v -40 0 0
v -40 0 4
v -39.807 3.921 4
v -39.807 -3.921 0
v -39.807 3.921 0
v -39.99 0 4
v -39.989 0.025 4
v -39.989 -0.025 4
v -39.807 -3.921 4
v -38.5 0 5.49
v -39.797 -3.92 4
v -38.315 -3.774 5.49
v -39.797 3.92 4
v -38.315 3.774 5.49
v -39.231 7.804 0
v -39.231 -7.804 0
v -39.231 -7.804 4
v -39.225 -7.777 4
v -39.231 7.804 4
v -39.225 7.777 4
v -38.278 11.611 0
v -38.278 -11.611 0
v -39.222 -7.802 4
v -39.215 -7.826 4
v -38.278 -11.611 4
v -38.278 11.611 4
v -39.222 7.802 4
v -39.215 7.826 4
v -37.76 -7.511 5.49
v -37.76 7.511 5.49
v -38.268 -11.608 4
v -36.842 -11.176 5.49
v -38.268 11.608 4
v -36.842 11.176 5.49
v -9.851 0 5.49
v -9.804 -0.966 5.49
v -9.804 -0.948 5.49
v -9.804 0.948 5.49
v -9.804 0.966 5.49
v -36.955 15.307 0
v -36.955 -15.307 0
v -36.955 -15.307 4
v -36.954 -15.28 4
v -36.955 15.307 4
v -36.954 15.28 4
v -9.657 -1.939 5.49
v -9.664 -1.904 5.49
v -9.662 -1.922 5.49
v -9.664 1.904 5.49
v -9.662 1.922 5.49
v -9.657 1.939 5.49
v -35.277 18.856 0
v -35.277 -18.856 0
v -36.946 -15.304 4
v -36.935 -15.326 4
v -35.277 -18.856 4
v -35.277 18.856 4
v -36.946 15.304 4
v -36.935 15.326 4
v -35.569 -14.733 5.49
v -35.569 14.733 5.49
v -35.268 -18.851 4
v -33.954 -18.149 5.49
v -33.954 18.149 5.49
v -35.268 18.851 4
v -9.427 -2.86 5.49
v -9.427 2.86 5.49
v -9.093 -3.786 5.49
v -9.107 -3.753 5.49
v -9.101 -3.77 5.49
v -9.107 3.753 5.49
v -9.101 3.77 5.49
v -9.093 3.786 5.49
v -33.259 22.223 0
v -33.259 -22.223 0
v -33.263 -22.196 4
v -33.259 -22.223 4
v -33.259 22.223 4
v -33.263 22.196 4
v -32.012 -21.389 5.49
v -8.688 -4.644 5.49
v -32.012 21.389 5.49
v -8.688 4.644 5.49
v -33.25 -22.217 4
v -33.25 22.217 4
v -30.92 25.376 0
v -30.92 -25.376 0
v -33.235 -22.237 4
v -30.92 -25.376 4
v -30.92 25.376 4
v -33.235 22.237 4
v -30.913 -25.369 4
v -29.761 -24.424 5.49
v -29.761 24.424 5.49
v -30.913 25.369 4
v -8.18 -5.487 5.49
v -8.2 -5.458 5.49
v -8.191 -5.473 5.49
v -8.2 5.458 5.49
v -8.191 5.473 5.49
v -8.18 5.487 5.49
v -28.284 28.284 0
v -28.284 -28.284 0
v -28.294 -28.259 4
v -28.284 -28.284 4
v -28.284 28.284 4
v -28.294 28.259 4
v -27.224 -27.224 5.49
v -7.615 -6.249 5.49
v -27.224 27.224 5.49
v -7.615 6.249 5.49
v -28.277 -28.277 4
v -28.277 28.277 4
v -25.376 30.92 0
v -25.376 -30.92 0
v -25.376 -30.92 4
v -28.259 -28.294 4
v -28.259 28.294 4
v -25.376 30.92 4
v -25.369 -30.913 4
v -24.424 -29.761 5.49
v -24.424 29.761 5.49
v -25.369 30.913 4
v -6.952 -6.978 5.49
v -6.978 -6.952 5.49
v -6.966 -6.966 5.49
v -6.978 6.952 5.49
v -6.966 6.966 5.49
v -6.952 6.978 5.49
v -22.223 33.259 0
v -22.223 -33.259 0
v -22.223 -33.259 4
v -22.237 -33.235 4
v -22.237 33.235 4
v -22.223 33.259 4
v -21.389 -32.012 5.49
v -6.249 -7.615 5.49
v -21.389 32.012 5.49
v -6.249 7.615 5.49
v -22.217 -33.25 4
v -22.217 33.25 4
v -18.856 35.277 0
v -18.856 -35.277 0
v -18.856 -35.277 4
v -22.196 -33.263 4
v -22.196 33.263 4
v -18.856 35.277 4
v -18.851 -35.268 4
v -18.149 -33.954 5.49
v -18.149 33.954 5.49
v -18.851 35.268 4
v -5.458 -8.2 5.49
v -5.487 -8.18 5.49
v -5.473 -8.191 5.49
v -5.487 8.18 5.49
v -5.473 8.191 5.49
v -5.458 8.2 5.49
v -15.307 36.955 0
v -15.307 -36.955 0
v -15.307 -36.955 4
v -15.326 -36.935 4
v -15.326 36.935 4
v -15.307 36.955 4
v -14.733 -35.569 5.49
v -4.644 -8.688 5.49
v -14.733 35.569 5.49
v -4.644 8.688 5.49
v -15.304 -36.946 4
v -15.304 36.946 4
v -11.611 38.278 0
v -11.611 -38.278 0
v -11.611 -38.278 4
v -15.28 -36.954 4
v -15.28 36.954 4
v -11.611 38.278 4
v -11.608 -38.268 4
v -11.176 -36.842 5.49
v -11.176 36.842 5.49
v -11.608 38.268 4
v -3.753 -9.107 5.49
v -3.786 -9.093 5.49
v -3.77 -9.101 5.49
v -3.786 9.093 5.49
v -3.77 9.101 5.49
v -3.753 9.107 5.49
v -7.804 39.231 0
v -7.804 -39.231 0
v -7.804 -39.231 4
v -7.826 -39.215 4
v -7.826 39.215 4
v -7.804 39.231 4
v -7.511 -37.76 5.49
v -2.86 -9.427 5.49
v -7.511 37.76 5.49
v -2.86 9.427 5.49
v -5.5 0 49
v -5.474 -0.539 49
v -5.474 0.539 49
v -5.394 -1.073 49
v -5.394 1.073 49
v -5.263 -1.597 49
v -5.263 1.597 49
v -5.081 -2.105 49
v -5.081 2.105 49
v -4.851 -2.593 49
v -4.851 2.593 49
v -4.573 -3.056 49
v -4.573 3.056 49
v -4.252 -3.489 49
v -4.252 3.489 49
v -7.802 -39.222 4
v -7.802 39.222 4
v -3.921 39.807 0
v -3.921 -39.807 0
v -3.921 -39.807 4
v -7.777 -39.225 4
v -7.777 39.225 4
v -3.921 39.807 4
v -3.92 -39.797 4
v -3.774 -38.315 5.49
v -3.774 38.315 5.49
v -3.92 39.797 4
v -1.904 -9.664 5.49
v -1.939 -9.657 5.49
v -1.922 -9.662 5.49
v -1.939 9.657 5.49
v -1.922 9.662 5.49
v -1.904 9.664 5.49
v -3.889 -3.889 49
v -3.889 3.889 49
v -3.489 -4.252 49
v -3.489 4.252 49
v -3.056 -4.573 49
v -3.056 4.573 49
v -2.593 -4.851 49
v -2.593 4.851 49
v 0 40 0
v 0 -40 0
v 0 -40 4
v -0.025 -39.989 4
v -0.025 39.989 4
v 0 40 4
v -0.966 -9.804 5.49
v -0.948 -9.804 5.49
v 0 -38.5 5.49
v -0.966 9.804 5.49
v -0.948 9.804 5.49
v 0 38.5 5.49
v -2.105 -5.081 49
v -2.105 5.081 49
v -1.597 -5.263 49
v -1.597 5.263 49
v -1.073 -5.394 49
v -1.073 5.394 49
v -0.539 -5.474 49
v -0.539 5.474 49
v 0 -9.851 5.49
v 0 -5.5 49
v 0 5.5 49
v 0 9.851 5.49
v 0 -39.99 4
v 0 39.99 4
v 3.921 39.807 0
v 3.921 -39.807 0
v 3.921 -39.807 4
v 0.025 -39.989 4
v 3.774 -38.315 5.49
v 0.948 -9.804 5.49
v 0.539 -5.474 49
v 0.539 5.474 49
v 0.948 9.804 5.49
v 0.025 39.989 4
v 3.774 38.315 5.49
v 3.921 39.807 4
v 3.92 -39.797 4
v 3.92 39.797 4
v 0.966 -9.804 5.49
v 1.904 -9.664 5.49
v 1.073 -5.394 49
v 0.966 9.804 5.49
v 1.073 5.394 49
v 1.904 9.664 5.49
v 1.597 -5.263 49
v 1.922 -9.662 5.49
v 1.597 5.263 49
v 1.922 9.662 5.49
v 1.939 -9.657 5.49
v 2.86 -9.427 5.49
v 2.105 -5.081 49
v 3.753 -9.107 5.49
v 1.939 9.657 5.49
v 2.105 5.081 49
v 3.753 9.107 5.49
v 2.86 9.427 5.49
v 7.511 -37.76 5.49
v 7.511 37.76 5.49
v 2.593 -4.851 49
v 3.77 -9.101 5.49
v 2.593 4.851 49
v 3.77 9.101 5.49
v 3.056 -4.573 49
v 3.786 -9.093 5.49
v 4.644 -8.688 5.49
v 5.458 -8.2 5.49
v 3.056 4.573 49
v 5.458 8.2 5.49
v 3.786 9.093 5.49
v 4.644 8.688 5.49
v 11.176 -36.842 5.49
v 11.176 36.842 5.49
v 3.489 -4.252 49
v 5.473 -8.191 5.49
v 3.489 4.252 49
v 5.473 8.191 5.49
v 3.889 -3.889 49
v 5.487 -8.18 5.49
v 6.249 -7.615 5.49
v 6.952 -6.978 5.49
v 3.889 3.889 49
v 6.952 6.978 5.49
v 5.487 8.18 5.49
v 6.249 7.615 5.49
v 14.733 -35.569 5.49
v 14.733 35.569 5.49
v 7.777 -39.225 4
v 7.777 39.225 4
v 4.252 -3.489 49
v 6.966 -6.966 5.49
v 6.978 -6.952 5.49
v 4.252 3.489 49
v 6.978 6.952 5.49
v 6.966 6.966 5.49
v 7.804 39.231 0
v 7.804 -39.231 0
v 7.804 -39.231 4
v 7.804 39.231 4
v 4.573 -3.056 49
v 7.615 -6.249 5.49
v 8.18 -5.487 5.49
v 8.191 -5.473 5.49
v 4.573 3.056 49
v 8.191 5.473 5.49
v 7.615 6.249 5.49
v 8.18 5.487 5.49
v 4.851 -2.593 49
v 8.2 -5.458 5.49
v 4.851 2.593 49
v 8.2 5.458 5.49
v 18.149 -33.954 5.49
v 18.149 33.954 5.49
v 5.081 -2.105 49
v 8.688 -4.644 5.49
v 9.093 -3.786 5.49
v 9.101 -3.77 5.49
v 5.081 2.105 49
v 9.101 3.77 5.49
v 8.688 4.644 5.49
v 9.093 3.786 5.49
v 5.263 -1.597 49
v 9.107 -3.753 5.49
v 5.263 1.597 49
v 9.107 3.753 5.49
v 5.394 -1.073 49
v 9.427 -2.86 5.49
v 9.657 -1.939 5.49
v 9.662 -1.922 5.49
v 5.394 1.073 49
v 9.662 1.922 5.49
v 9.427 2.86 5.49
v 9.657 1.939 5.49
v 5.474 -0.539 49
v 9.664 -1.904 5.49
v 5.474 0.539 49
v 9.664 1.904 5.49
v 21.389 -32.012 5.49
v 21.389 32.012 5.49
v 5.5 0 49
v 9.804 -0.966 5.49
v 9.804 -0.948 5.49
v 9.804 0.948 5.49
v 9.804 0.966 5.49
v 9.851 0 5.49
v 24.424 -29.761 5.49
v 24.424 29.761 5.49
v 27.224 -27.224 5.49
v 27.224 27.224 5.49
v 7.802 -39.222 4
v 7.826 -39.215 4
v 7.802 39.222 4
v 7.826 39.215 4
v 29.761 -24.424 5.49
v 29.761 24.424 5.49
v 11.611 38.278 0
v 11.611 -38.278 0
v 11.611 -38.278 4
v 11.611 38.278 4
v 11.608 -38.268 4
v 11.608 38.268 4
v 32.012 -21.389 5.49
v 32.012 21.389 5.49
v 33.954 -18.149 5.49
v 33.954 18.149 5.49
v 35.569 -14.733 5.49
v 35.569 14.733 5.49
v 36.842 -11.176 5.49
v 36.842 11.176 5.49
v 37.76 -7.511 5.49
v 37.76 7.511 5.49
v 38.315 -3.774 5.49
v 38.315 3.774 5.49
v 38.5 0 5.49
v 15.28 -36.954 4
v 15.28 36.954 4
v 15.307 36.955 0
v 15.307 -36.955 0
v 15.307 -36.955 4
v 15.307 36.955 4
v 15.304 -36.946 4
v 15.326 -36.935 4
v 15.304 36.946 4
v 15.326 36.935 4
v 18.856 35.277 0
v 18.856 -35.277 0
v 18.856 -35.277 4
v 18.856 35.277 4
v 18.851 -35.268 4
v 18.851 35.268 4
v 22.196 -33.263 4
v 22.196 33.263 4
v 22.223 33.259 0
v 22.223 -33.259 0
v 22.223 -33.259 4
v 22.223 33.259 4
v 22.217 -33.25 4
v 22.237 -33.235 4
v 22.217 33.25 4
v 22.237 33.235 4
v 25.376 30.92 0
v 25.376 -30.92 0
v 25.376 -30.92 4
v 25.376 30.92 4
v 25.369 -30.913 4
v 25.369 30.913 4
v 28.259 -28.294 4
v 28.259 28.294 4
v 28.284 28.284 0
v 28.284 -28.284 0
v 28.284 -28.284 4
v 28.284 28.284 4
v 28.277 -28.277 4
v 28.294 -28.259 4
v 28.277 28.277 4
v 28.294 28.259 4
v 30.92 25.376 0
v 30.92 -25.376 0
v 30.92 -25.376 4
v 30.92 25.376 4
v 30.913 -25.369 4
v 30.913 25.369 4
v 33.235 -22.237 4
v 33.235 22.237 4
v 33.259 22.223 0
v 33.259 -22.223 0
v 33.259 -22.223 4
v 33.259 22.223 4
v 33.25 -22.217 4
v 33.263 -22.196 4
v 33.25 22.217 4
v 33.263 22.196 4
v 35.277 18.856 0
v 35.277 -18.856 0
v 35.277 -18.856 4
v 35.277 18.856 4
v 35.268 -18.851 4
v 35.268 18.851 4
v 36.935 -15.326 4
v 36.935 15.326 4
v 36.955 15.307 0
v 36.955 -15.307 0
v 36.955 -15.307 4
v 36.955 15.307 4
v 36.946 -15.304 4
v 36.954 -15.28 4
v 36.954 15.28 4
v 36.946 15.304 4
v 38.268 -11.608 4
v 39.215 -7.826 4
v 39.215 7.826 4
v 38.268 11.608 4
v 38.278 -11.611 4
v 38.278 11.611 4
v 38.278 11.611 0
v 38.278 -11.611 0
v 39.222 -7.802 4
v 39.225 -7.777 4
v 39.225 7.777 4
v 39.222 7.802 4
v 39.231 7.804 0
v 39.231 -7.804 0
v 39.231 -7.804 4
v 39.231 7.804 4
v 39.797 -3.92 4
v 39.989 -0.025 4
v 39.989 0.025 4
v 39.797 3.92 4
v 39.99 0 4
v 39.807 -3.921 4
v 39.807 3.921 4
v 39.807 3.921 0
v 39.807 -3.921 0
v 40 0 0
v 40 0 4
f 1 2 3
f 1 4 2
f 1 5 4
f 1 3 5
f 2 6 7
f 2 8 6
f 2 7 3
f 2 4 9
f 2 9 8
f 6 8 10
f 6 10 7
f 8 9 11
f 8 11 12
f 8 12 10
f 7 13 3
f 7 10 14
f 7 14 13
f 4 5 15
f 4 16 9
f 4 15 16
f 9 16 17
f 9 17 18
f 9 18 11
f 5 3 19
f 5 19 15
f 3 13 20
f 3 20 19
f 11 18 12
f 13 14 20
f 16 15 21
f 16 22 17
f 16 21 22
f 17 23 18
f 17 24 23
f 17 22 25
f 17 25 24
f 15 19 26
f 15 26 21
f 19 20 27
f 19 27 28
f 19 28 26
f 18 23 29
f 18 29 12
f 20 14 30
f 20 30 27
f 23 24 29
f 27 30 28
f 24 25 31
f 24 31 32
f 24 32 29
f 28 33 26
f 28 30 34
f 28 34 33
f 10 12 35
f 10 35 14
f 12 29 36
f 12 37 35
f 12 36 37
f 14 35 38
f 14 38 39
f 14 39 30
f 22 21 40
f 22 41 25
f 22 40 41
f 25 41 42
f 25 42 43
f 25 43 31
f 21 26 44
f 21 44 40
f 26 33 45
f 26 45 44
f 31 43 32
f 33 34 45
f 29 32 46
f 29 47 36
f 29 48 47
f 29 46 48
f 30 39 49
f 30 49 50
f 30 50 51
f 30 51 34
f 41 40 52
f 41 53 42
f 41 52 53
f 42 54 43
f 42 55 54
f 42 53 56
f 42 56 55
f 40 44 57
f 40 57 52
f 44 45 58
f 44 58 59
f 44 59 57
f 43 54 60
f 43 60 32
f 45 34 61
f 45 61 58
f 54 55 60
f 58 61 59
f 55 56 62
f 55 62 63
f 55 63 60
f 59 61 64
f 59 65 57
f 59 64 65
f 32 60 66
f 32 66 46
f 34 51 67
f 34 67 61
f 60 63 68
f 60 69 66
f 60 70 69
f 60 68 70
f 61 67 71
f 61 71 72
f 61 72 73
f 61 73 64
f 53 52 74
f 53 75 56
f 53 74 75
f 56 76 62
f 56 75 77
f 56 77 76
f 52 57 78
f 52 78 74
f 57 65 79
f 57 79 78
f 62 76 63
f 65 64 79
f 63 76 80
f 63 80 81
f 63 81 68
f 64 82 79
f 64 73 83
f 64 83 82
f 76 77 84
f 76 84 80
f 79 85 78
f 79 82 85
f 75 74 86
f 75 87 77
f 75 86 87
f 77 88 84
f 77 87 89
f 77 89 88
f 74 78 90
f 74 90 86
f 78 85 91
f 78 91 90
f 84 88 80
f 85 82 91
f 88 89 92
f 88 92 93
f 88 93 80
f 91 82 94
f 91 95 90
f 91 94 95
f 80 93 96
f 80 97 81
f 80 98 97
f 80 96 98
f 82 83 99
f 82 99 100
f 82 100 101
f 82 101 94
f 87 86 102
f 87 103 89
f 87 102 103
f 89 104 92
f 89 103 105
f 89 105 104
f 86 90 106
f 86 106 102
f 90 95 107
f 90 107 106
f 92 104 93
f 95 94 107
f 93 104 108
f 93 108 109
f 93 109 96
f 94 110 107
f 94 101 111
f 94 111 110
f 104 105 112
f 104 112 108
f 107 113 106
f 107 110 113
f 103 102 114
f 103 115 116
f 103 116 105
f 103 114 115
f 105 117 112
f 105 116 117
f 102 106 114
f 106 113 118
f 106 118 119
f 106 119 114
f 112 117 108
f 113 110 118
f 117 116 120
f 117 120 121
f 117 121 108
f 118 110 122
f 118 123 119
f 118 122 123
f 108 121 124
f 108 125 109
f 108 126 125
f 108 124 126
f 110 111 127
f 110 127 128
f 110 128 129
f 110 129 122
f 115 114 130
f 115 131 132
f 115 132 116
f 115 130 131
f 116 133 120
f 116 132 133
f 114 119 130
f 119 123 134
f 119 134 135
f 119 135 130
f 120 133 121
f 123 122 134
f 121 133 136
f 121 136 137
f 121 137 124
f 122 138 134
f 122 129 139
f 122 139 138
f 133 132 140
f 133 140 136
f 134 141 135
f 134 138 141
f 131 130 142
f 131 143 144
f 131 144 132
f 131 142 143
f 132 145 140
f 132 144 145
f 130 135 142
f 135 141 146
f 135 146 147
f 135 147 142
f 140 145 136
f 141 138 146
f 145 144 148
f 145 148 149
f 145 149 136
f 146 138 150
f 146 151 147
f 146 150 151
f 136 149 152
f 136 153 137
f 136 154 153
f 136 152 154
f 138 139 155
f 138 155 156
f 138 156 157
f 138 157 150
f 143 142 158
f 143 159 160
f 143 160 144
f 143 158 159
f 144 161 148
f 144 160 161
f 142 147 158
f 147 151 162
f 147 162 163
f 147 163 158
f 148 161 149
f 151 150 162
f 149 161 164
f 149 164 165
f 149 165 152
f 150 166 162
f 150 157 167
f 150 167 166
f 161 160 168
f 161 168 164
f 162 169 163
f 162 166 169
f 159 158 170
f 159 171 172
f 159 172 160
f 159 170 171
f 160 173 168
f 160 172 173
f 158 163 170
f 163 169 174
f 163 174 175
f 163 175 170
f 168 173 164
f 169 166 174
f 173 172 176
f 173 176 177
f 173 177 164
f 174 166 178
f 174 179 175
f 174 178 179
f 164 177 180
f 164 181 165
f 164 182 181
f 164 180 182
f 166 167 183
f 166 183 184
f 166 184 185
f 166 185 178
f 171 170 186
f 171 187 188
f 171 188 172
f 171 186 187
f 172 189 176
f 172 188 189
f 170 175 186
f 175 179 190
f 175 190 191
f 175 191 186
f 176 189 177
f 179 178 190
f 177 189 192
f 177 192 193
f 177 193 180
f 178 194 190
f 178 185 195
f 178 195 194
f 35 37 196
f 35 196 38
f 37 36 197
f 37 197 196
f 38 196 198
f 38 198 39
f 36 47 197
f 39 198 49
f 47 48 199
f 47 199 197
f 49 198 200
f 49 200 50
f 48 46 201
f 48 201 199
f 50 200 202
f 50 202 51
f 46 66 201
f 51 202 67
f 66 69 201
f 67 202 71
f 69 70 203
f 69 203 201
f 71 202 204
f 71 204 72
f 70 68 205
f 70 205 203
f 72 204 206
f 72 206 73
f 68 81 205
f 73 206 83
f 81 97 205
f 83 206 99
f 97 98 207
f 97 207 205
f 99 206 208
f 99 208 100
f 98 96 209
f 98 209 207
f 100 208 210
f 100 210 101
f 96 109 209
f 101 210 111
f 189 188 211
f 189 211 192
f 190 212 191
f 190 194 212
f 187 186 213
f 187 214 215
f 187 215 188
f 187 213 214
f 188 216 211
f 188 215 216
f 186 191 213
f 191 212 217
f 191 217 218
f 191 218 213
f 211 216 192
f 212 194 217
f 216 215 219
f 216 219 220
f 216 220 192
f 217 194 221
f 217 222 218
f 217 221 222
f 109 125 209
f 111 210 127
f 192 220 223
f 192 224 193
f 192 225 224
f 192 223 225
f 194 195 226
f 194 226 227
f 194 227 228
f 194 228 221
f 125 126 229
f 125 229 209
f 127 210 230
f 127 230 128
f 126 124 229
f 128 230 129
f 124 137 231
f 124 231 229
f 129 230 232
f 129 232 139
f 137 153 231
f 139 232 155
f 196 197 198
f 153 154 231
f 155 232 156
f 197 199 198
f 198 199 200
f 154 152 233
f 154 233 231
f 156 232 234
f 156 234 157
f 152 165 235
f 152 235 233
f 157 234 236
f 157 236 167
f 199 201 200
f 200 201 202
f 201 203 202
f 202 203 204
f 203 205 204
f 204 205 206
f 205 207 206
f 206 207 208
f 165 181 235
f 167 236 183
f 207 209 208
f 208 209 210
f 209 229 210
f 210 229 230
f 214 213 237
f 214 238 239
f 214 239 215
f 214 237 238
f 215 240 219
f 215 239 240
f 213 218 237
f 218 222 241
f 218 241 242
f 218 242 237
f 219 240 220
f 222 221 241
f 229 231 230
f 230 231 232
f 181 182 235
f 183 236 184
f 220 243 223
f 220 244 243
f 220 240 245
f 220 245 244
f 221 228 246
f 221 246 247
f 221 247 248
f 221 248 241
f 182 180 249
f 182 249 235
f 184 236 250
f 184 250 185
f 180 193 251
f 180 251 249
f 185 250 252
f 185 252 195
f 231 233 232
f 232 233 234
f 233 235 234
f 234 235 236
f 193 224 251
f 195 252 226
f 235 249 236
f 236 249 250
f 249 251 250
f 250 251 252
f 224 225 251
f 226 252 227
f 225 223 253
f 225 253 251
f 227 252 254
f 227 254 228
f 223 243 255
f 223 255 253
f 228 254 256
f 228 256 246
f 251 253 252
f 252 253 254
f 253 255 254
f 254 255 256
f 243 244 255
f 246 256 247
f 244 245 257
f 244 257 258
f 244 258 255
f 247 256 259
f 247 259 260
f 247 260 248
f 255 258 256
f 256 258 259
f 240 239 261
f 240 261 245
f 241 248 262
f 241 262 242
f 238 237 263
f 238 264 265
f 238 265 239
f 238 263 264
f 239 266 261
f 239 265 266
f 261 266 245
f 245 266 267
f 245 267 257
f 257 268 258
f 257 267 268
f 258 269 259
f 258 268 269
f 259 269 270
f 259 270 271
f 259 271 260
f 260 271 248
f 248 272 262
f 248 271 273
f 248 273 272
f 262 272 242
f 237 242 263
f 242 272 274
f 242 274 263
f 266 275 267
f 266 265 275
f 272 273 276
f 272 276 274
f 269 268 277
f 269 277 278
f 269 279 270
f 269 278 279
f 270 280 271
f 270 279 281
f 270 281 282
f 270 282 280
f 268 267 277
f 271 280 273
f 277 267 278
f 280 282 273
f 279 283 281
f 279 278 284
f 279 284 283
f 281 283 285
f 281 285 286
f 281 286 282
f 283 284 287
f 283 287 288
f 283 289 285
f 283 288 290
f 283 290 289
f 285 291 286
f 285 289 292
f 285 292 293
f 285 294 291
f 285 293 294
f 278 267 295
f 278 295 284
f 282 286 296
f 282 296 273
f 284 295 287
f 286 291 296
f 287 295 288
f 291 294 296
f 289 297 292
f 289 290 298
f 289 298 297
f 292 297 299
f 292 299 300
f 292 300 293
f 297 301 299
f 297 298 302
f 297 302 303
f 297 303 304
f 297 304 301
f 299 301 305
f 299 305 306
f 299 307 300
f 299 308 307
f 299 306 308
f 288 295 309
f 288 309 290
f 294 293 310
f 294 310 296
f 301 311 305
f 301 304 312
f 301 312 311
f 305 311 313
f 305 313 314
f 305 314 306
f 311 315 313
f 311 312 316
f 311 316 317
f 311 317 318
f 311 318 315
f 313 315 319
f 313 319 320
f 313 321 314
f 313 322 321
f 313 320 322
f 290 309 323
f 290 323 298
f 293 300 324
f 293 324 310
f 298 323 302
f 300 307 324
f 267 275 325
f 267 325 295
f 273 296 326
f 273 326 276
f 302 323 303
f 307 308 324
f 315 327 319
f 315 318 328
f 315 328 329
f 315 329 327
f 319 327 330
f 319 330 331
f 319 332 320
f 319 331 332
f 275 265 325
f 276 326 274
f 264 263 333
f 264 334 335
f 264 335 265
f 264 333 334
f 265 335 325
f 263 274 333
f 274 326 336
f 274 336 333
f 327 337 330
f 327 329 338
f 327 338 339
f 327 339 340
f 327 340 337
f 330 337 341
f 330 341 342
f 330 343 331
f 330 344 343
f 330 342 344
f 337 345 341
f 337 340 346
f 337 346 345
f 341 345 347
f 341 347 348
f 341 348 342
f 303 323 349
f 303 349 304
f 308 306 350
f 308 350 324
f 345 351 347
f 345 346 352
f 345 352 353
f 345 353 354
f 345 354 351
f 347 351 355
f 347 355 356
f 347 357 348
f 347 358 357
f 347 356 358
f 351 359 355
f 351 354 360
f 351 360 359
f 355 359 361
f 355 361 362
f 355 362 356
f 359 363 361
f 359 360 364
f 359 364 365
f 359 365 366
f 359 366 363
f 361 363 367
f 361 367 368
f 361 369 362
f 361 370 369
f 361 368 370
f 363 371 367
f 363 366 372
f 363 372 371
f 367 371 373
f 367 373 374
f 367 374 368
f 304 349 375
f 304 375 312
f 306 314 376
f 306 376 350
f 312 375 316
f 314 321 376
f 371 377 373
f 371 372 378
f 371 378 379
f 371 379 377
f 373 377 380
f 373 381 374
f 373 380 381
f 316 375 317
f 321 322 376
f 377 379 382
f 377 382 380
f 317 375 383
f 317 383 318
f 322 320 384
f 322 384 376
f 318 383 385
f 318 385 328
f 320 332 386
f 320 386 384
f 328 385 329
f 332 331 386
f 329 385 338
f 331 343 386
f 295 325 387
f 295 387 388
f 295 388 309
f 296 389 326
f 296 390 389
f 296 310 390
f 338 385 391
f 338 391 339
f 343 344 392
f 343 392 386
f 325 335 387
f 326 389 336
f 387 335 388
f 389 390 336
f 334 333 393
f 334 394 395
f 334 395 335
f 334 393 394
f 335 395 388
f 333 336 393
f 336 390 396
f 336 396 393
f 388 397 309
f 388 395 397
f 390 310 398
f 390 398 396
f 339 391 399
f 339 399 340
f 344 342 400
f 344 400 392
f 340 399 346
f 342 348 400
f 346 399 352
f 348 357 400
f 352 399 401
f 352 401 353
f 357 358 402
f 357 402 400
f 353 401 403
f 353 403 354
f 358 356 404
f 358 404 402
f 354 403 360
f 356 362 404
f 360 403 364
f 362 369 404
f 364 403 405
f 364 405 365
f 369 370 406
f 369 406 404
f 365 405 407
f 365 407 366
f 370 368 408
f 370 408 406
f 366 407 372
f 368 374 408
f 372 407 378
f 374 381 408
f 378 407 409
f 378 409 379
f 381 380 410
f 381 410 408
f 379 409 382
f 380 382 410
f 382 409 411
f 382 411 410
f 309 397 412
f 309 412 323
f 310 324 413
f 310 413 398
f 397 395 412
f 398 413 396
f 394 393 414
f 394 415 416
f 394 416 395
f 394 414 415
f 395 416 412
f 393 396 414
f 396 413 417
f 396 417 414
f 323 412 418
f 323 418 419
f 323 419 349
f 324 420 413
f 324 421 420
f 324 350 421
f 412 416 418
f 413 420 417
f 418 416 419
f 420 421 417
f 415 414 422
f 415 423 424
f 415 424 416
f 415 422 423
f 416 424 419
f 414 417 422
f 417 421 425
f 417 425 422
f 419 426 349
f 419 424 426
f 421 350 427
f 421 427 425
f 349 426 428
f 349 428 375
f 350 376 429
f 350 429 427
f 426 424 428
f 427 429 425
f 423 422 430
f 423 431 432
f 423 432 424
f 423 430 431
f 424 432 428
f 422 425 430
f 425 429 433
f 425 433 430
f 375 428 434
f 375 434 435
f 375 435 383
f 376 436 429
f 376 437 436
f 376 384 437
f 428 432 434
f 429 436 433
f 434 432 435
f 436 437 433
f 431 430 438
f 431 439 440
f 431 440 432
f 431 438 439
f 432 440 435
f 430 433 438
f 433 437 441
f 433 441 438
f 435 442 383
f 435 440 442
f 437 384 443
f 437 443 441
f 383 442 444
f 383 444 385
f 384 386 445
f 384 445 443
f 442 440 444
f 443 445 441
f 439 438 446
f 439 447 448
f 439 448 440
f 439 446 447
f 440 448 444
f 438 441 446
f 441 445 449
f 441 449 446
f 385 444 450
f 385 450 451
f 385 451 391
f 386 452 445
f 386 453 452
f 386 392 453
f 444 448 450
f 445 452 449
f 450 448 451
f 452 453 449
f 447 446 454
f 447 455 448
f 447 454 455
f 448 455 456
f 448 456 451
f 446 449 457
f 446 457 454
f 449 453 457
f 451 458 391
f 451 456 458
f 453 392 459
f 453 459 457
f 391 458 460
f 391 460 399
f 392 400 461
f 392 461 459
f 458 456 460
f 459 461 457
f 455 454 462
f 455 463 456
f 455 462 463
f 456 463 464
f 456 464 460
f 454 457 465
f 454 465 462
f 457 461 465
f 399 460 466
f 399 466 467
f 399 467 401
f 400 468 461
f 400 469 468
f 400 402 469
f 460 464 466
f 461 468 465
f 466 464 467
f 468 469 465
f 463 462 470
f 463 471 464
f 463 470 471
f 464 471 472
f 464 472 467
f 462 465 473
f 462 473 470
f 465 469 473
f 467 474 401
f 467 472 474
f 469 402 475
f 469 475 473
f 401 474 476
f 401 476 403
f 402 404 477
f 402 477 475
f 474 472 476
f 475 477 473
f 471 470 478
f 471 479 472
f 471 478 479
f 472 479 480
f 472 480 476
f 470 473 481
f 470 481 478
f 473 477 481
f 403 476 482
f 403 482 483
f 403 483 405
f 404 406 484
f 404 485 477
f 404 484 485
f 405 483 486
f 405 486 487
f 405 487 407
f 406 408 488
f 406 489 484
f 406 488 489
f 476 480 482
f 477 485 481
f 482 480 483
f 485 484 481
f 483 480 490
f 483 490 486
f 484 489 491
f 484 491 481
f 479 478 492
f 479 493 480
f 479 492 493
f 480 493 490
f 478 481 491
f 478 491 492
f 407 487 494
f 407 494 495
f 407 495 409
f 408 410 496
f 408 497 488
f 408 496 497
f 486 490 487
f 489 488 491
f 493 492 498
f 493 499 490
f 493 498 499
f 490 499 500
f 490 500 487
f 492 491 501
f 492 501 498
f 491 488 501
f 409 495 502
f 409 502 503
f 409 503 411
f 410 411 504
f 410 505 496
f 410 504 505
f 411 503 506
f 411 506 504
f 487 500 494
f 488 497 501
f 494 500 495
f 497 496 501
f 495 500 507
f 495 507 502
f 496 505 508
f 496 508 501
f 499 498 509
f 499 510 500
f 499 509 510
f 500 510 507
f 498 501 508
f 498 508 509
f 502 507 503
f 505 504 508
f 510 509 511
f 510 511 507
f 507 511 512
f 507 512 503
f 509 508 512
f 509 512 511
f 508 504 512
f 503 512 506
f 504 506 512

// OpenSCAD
// Electronics Storage — Solder Spool Holder
// Vertical post + wide base. Drop a standard solder spool over the
// post; the weighted base keeps it from tipping when you pull solder.
//
// Fits spool hub IDs from 12 mm up to ~25 mm (post is tapered).

$fn = 64;

BASE_D = 80;    // base disc diameter
BASE_H = 4;     // base disc thickness (keep it heavy-ish — fill at 100 % infill)
POST_H = 45;    // post height (clears typical spool hub width of ~22-30 mm)
POST_D1 = 20;   // post diameter at base
POST_D2 = 11;   // post diameter at tip (taper for easier drop-on)

// Footprint: round disc. Stands freely, doesn't need a grid tile.

union() {
    // Base disc with a small chamfer at the top edge
    cylinder(h = BASE_H, d = BASE_D);
    translate([0, 0, BASE_H - 0.01])
        cylinder(h = 1.5, d1 = BASE_D, d2 = BASE_D - 3);

    // Post
    translate([0, 0, BASE_H])
        cylinder(h = POST_H, d1 = POST_D1, d2 = POST_D2);
}
